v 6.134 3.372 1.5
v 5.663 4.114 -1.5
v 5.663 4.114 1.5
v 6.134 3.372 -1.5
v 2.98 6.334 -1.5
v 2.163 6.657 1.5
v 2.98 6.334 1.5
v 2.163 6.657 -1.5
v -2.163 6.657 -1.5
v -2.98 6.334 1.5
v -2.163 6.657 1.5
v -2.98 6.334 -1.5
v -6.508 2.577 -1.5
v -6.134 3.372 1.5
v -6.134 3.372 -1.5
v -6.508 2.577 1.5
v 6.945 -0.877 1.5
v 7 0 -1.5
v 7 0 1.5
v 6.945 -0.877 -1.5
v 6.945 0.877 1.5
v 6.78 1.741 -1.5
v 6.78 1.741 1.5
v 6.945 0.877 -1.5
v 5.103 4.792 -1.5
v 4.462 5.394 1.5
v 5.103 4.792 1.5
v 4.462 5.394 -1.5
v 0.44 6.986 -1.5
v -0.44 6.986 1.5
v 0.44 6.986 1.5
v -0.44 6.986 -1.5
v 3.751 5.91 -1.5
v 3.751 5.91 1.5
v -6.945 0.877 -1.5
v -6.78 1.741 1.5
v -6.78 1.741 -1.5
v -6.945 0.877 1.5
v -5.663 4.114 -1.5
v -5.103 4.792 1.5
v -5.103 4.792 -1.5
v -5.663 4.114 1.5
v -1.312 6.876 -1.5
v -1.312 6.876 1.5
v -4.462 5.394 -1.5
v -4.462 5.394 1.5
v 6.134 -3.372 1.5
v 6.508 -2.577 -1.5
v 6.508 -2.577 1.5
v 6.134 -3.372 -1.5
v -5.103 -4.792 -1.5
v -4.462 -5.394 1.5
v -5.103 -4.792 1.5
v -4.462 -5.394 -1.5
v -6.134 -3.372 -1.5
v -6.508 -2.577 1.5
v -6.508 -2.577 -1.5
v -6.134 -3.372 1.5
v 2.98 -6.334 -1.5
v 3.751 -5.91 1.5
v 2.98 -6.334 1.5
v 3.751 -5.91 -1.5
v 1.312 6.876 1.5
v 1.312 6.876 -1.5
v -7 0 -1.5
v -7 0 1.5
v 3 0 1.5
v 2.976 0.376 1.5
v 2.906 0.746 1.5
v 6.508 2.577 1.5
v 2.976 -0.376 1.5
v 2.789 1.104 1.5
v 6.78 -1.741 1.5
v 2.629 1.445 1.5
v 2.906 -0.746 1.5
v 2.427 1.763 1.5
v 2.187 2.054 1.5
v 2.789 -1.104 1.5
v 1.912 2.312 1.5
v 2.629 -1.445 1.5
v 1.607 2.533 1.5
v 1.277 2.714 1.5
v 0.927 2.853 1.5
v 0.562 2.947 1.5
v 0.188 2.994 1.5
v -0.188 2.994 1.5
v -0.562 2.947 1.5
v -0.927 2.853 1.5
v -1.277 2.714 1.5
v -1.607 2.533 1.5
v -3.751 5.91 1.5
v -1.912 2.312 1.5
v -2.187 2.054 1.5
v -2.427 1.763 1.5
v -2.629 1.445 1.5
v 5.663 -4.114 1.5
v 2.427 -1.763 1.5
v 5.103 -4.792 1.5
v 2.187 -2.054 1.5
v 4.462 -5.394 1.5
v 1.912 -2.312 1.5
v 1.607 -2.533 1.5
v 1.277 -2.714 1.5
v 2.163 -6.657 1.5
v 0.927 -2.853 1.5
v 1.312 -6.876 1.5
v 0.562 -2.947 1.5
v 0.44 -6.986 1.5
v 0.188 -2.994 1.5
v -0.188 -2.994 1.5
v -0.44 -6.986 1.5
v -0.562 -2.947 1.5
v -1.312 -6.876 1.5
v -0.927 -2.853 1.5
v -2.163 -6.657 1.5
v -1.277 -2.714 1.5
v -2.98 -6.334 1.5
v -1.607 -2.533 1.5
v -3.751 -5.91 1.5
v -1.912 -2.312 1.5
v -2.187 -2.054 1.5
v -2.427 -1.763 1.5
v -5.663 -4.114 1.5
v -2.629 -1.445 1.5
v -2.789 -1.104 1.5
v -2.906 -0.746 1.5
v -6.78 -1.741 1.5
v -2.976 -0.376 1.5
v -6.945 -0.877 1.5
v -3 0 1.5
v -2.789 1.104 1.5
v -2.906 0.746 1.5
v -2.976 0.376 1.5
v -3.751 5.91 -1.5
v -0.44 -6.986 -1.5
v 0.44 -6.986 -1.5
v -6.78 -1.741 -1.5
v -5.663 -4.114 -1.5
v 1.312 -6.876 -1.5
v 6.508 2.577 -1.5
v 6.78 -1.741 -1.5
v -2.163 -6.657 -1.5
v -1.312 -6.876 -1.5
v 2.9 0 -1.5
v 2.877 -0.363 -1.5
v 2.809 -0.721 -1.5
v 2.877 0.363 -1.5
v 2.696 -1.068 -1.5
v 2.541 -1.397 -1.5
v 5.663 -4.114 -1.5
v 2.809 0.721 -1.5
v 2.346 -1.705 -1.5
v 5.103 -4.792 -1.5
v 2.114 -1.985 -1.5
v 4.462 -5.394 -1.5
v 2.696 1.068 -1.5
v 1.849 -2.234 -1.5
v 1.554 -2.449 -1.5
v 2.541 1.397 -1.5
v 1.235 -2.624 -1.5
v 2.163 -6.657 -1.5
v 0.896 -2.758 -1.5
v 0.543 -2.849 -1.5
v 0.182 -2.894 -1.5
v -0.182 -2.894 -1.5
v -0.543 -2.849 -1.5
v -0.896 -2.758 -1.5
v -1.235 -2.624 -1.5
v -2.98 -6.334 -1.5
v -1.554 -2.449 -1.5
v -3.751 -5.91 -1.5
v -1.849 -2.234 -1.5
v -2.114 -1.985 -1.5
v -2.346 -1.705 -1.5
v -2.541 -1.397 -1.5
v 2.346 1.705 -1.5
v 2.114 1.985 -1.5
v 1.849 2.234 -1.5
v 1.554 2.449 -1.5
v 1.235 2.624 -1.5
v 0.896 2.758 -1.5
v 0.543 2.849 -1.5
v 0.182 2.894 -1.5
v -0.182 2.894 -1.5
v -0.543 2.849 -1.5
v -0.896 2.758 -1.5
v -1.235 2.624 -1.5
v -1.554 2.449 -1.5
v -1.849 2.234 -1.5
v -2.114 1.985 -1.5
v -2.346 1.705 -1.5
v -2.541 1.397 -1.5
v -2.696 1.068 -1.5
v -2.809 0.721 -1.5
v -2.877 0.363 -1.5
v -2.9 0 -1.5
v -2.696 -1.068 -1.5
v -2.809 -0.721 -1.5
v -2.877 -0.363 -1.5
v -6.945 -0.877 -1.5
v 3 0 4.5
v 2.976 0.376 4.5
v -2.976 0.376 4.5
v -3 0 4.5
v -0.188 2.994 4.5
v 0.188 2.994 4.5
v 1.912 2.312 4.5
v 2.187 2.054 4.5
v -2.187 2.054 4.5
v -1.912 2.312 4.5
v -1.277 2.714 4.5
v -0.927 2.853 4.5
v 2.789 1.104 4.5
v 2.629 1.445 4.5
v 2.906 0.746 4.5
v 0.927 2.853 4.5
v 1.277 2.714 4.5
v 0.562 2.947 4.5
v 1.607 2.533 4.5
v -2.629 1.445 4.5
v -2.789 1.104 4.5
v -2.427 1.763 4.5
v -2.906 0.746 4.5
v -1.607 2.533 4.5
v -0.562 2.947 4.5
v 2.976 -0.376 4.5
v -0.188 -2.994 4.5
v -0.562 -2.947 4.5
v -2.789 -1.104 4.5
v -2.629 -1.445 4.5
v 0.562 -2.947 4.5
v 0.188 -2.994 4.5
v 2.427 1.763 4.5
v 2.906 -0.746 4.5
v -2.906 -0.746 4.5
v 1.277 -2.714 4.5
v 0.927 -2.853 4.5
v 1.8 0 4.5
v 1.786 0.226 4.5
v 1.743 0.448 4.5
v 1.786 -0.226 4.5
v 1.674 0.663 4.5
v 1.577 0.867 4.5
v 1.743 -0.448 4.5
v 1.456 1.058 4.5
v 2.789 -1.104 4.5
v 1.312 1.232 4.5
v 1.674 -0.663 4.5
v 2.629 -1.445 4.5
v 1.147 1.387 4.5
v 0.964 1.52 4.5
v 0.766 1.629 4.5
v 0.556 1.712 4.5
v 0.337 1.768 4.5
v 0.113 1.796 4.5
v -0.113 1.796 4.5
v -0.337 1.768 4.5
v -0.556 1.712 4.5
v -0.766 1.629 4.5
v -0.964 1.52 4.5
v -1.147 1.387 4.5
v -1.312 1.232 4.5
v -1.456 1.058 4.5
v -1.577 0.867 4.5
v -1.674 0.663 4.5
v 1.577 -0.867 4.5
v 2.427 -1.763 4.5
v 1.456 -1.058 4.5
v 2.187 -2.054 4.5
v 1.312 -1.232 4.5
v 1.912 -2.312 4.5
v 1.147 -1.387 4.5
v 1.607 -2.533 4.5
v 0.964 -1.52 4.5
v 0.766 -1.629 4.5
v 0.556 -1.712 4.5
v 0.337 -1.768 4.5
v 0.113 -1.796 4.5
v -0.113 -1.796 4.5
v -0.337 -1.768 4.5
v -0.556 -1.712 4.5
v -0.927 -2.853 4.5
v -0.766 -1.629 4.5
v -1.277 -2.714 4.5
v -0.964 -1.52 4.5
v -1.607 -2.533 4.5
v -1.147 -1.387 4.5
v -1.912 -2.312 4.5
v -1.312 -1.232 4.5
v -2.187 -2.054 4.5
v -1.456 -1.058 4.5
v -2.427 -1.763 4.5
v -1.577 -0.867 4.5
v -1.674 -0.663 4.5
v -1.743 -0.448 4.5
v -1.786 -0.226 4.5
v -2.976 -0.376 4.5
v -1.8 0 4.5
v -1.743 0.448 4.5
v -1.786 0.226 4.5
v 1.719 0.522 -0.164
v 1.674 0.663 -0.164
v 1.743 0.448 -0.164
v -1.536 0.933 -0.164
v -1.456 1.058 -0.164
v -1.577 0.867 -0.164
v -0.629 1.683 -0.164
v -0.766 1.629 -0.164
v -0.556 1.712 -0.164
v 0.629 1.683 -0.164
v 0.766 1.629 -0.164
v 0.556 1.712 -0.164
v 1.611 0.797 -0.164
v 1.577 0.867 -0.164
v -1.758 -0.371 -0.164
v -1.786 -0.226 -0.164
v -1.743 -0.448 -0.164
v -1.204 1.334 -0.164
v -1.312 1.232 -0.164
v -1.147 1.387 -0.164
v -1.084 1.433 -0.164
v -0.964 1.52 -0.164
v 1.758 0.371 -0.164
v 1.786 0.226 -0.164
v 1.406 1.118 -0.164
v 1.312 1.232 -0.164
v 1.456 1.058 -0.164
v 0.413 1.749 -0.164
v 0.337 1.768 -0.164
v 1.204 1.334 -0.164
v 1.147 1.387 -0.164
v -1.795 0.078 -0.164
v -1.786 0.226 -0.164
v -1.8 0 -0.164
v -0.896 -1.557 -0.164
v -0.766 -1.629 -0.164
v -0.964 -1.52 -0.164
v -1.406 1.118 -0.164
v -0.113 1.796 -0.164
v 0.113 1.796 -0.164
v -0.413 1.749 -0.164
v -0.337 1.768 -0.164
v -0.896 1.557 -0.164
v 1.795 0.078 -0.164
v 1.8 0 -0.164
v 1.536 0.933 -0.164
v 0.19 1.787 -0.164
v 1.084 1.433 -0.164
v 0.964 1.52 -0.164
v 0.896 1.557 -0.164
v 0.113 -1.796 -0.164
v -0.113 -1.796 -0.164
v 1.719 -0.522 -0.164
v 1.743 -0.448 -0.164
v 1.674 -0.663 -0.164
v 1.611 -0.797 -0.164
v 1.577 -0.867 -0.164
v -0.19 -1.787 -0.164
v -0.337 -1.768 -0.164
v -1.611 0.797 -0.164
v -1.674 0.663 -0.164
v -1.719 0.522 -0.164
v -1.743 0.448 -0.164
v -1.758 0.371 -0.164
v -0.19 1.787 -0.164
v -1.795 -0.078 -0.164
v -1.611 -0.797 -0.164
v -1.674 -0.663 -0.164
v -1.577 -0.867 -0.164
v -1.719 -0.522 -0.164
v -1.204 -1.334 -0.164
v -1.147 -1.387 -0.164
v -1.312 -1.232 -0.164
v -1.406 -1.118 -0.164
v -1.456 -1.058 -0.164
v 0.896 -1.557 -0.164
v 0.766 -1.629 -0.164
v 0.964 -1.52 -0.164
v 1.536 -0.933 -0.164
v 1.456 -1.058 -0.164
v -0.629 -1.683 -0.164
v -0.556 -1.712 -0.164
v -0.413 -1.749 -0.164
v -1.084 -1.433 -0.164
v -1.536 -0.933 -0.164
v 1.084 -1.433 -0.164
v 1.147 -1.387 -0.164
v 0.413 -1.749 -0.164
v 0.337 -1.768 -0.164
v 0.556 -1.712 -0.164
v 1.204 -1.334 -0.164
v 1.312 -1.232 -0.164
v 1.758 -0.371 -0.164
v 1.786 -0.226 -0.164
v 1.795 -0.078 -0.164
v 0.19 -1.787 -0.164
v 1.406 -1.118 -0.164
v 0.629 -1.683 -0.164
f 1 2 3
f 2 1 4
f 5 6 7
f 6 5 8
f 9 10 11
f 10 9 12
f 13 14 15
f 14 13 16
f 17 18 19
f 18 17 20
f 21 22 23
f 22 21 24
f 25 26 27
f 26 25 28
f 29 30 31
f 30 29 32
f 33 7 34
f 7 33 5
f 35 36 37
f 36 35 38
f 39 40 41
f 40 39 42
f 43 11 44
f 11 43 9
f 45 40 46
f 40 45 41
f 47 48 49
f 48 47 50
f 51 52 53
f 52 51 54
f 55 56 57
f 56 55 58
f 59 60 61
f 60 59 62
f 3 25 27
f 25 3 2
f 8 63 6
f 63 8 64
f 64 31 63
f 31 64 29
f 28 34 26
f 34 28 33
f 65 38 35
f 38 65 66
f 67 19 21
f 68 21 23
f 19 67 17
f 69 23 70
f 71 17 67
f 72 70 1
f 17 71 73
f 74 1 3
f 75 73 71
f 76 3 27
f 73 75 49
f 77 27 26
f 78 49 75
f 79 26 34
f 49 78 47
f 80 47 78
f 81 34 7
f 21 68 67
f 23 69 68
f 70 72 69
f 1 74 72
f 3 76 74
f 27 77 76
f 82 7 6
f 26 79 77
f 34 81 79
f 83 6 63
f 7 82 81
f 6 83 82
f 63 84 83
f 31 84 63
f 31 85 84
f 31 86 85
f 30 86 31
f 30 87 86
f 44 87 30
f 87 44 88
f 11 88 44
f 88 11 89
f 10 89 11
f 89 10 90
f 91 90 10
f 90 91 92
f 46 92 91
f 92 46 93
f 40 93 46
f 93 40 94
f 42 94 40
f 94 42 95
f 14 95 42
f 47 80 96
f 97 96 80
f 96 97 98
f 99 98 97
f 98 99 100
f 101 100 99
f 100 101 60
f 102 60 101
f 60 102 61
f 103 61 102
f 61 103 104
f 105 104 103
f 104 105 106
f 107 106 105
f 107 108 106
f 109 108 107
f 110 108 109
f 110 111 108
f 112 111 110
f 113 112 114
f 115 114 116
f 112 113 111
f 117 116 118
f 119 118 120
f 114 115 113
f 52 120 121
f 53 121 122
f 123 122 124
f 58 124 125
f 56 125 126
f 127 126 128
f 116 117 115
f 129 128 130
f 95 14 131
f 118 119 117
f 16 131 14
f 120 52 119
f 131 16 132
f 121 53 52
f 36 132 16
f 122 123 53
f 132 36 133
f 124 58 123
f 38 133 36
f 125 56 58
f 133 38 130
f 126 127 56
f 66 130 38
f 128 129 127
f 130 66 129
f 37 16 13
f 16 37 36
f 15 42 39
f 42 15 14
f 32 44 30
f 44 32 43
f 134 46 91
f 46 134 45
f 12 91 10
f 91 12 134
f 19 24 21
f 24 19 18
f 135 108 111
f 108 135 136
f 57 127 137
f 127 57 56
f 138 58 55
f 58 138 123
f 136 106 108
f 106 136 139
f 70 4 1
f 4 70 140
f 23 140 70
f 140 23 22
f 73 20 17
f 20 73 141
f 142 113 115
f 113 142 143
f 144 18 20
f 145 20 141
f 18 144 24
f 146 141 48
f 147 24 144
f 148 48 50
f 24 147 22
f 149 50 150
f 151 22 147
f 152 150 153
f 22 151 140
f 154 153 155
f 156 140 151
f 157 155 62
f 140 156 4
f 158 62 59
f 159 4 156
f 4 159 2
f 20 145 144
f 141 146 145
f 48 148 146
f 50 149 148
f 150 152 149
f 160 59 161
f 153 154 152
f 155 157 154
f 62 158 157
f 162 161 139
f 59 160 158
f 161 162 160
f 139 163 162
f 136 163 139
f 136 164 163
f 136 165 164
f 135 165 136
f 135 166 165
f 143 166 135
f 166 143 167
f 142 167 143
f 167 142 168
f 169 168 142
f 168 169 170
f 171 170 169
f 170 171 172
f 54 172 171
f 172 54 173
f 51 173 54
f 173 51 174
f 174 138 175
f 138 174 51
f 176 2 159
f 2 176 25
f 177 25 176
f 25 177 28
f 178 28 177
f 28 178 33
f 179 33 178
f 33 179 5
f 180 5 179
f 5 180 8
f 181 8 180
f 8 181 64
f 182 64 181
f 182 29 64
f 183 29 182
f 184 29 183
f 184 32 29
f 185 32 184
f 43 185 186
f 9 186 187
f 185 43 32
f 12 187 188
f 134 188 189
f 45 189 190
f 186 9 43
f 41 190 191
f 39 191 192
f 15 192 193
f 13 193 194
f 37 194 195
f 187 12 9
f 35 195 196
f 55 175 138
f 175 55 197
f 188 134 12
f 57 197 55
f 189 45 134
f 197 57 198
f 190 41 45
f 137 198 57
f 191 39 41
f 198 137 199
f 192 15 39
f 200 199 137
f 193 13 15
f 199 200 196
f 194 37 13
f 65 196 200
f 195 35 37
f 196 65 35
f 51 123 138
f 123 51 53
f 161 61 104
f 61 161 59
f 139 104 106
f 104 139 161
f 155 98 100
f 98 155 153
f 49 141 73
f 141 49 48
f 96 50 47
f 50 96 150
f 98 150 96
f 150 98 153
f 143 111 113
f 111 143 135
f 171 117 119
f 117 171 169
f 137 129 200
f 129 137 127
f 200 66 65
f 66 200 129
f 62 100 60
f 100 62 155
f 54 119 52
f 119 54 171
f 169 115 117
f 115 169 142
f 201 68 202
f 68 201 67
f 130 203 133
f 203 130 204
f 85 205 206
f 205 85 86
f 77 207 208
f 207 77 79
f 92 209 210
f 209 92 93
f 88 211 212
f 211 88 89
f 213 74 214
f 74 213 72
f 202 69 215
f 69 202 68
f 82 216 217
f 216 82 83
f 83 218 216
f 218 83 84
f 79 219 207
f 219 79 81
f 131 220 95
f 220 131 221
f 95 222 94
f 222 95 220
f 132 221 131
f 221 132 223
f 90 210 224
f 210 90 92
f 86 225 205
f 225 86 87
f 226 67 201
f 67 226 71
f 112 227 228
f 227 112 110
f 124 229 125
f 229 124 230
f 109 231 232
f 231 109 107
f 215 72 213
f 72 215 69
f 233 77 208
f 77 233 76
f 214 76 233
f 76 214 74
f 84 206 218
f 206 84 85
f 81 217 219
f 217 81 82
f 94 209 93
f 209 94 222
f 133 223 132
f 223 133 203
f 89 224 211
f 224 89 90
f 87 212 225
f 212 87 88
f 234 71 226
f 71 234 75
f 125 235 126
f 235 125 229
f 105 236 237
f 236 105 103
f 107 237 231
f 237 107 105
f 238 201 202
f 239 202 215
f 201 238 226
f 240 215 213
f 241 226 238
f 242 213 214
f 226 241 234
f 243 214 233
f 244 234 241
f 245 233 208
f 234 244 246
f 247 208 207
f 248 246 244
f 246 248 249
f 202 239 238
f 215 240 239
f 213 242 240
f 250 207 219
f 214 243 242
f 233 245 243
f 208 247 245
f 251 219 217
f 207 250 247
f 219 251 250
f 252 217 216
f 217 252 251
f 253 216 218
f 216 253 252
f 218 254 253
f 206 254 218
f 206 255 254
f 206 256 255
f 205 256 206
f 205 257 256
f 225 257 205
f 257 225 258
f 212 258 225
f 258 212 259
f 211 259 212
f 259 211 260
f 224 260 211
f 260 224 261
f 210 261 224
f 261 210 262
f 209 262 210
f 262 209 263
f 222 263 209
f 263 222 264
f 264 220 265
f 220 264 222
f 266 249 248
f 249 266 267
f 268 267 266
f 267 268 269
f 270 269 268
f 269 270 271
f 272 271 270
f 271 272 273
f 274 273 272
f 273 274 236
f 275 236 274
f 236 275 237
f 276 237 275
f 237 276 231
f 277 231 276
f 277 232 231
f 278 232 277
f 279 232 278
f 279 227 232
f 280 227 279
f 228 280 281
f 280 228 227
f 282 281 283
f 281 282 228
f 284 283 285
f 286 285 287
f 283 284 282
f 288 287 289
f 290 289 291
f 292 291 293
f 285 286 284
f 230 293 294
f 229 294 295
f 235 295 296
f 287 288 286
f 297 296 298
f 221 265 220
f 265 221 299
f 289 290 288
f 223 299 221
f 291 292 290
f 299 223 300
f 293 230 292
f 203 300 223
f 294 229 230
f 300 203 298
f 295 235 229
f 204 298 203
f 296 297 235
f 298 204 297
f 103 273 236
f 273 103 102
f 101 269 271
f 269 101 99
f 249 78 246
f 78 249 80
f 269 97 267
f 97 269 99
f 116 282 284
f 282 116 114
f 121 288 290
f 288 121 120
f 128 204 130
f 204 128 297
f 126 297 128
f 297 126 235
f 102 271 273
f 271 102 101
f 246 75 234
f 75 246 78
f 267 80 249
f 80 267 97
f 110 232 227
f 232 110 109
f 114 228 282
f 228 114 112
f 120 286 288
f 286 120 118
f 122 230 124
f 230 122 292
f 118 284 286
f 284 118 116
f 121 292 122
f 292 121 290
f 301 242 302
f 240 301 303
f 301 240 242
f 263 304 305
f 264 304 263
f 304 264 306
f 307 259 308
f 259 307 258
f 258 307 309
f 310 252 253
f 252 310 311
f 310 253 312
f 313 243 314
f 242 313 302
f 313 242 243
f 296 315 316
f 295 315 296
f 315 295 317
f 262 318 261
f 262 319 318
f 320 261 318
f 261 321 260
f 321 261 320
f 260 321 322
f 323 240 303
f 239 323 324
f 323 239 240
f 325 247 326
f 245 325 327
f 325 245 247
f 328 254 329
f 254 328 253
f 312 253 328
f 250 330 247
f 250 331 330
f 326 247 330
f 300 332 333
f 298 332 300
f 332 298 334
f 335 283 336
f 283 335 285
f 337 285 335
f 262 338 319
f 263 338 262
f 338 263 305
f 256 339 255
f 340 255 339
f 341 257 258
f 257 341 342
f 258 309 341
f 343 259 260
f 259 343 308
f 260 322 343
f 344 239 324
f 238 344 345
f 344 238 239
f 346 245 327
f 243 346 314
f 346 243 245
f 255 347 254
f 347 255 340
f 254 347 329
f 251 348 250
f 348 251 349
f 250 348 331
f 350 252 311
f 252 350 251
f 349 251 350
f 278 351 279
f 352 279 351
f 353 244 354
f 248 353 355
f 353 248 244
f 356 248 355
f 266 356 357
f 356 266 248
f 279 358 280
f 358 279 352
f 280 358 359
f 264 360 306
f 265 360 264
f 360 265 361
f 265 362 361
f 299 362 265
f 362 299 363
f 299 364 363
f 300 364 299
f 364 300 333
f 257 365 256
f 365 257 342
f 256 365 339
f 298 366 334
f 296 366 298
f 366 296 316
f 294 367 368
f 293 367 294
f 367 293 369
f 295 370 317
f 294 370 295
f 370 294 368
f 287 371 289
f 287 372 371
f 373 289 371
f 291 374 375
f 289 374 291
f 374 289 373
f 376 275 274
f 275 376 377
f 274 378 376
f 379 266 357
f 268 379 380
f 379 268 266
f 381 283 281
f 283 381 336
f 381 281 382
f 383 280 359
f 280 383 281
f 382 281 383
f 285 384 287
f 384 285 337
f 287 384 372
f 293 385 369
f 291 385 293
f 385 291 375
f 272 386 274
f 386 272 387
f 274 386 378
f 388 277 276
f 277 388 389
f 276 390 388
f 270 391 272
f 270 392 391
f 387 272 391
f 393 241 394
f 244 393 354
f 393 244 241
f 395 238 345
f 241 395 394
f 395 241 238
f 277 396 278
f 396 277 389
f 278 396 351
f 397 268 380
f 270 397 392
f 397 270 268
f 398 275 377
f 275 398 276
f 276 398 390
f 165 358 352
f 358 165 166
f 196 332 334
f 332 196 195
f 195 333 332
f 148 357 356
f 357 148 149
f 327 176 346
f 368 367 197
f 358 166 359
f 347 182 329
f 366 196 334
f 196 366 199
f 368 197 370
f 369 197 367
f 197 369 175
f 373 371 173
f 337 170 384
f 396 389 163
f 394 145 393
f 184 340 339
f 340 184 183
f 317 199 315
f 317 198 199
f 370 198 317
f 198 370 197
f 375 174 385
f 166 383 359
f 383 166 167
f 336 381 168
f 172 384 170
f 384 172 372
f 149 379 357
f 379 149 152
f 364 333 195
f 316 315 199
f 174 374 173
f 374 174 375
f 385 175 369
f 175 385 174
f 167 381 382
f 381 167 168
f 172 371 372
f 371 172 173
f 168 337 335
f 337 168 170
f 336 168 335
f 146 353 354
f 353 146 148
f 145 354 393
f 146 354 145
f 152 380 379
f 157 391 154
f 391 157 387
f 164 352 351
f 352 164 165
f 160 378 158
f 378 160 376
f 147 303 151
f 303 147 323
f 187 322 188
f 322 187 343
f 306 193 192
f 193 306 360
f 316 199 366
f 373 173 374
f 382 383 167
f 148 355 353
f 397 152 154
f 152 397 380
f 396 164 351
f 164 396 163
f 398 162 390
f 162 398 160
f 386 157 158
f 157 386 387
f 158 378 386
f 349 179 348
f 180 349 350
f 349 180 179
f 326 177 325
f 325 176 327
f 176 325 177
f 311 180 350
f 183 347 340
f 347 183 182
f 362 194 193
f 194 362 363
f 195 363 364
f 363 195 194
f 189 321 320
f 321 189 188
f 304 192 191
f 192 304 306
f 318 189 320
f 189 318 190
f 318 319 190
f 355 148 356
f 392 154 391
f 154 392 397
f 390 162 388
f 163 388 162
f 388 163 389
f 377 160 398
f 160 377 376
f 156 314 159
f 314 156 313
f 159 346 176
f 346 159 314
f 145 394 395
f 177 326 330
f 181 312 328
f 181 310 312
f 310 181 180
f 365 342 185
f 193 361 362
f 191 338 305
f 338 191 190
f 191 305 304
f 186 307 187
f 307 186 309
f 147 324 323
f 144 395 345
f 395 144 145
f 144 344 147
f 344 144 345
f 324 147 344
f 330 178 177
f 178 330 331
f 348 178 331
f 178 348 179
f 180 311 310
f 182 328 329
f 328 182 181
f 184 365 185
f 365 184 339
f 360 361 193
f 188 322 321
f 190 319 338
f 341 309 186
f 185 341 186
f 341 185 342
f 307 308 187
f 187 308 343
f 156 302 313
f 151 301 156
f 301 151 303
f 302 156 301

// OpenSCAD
$fn = 50;


difference() {
	union() {
		translate(v = [0, 0, -1.5000000000]) {
			cylinder(h = 3, r = 7.0000000000);
		}
		translate(v = [0, 0, -1.5000000000]) {
			cylinder(h = 6, r = 3.0000000000);
		}
	}
	union() {
		translate(v = [0, 0, -1.5000000000]) {
			rotate(a = [0, 180, 0]) {
				difference() {
					union() {
						translate(v = [0, 0, -6.0000000000]) {
							cylinder(h = 6, r = 1.5000000000);
						}
						translate(v = [0, 0, -6.0000000000]) {
							cylinder(h = 6, r = 1.8000000000);
						}
						translate(v = [0, 0, -1.7000000000]) {
							cylinder(h = 1.7000000000, r1 = 1.5000000000, r2 = 2.9000000000);
						}
						translate(v = [0, 0, -6.0000000000]) {
							cylinder(h = 6, r = 1.5000000000);
						}
					}
					union();
				}
			}
		}
		translate(v = [0, 0, -100.0000000000]) {
			cylinder(h = 200, r = 1.5000000000);
		}
	}
}
